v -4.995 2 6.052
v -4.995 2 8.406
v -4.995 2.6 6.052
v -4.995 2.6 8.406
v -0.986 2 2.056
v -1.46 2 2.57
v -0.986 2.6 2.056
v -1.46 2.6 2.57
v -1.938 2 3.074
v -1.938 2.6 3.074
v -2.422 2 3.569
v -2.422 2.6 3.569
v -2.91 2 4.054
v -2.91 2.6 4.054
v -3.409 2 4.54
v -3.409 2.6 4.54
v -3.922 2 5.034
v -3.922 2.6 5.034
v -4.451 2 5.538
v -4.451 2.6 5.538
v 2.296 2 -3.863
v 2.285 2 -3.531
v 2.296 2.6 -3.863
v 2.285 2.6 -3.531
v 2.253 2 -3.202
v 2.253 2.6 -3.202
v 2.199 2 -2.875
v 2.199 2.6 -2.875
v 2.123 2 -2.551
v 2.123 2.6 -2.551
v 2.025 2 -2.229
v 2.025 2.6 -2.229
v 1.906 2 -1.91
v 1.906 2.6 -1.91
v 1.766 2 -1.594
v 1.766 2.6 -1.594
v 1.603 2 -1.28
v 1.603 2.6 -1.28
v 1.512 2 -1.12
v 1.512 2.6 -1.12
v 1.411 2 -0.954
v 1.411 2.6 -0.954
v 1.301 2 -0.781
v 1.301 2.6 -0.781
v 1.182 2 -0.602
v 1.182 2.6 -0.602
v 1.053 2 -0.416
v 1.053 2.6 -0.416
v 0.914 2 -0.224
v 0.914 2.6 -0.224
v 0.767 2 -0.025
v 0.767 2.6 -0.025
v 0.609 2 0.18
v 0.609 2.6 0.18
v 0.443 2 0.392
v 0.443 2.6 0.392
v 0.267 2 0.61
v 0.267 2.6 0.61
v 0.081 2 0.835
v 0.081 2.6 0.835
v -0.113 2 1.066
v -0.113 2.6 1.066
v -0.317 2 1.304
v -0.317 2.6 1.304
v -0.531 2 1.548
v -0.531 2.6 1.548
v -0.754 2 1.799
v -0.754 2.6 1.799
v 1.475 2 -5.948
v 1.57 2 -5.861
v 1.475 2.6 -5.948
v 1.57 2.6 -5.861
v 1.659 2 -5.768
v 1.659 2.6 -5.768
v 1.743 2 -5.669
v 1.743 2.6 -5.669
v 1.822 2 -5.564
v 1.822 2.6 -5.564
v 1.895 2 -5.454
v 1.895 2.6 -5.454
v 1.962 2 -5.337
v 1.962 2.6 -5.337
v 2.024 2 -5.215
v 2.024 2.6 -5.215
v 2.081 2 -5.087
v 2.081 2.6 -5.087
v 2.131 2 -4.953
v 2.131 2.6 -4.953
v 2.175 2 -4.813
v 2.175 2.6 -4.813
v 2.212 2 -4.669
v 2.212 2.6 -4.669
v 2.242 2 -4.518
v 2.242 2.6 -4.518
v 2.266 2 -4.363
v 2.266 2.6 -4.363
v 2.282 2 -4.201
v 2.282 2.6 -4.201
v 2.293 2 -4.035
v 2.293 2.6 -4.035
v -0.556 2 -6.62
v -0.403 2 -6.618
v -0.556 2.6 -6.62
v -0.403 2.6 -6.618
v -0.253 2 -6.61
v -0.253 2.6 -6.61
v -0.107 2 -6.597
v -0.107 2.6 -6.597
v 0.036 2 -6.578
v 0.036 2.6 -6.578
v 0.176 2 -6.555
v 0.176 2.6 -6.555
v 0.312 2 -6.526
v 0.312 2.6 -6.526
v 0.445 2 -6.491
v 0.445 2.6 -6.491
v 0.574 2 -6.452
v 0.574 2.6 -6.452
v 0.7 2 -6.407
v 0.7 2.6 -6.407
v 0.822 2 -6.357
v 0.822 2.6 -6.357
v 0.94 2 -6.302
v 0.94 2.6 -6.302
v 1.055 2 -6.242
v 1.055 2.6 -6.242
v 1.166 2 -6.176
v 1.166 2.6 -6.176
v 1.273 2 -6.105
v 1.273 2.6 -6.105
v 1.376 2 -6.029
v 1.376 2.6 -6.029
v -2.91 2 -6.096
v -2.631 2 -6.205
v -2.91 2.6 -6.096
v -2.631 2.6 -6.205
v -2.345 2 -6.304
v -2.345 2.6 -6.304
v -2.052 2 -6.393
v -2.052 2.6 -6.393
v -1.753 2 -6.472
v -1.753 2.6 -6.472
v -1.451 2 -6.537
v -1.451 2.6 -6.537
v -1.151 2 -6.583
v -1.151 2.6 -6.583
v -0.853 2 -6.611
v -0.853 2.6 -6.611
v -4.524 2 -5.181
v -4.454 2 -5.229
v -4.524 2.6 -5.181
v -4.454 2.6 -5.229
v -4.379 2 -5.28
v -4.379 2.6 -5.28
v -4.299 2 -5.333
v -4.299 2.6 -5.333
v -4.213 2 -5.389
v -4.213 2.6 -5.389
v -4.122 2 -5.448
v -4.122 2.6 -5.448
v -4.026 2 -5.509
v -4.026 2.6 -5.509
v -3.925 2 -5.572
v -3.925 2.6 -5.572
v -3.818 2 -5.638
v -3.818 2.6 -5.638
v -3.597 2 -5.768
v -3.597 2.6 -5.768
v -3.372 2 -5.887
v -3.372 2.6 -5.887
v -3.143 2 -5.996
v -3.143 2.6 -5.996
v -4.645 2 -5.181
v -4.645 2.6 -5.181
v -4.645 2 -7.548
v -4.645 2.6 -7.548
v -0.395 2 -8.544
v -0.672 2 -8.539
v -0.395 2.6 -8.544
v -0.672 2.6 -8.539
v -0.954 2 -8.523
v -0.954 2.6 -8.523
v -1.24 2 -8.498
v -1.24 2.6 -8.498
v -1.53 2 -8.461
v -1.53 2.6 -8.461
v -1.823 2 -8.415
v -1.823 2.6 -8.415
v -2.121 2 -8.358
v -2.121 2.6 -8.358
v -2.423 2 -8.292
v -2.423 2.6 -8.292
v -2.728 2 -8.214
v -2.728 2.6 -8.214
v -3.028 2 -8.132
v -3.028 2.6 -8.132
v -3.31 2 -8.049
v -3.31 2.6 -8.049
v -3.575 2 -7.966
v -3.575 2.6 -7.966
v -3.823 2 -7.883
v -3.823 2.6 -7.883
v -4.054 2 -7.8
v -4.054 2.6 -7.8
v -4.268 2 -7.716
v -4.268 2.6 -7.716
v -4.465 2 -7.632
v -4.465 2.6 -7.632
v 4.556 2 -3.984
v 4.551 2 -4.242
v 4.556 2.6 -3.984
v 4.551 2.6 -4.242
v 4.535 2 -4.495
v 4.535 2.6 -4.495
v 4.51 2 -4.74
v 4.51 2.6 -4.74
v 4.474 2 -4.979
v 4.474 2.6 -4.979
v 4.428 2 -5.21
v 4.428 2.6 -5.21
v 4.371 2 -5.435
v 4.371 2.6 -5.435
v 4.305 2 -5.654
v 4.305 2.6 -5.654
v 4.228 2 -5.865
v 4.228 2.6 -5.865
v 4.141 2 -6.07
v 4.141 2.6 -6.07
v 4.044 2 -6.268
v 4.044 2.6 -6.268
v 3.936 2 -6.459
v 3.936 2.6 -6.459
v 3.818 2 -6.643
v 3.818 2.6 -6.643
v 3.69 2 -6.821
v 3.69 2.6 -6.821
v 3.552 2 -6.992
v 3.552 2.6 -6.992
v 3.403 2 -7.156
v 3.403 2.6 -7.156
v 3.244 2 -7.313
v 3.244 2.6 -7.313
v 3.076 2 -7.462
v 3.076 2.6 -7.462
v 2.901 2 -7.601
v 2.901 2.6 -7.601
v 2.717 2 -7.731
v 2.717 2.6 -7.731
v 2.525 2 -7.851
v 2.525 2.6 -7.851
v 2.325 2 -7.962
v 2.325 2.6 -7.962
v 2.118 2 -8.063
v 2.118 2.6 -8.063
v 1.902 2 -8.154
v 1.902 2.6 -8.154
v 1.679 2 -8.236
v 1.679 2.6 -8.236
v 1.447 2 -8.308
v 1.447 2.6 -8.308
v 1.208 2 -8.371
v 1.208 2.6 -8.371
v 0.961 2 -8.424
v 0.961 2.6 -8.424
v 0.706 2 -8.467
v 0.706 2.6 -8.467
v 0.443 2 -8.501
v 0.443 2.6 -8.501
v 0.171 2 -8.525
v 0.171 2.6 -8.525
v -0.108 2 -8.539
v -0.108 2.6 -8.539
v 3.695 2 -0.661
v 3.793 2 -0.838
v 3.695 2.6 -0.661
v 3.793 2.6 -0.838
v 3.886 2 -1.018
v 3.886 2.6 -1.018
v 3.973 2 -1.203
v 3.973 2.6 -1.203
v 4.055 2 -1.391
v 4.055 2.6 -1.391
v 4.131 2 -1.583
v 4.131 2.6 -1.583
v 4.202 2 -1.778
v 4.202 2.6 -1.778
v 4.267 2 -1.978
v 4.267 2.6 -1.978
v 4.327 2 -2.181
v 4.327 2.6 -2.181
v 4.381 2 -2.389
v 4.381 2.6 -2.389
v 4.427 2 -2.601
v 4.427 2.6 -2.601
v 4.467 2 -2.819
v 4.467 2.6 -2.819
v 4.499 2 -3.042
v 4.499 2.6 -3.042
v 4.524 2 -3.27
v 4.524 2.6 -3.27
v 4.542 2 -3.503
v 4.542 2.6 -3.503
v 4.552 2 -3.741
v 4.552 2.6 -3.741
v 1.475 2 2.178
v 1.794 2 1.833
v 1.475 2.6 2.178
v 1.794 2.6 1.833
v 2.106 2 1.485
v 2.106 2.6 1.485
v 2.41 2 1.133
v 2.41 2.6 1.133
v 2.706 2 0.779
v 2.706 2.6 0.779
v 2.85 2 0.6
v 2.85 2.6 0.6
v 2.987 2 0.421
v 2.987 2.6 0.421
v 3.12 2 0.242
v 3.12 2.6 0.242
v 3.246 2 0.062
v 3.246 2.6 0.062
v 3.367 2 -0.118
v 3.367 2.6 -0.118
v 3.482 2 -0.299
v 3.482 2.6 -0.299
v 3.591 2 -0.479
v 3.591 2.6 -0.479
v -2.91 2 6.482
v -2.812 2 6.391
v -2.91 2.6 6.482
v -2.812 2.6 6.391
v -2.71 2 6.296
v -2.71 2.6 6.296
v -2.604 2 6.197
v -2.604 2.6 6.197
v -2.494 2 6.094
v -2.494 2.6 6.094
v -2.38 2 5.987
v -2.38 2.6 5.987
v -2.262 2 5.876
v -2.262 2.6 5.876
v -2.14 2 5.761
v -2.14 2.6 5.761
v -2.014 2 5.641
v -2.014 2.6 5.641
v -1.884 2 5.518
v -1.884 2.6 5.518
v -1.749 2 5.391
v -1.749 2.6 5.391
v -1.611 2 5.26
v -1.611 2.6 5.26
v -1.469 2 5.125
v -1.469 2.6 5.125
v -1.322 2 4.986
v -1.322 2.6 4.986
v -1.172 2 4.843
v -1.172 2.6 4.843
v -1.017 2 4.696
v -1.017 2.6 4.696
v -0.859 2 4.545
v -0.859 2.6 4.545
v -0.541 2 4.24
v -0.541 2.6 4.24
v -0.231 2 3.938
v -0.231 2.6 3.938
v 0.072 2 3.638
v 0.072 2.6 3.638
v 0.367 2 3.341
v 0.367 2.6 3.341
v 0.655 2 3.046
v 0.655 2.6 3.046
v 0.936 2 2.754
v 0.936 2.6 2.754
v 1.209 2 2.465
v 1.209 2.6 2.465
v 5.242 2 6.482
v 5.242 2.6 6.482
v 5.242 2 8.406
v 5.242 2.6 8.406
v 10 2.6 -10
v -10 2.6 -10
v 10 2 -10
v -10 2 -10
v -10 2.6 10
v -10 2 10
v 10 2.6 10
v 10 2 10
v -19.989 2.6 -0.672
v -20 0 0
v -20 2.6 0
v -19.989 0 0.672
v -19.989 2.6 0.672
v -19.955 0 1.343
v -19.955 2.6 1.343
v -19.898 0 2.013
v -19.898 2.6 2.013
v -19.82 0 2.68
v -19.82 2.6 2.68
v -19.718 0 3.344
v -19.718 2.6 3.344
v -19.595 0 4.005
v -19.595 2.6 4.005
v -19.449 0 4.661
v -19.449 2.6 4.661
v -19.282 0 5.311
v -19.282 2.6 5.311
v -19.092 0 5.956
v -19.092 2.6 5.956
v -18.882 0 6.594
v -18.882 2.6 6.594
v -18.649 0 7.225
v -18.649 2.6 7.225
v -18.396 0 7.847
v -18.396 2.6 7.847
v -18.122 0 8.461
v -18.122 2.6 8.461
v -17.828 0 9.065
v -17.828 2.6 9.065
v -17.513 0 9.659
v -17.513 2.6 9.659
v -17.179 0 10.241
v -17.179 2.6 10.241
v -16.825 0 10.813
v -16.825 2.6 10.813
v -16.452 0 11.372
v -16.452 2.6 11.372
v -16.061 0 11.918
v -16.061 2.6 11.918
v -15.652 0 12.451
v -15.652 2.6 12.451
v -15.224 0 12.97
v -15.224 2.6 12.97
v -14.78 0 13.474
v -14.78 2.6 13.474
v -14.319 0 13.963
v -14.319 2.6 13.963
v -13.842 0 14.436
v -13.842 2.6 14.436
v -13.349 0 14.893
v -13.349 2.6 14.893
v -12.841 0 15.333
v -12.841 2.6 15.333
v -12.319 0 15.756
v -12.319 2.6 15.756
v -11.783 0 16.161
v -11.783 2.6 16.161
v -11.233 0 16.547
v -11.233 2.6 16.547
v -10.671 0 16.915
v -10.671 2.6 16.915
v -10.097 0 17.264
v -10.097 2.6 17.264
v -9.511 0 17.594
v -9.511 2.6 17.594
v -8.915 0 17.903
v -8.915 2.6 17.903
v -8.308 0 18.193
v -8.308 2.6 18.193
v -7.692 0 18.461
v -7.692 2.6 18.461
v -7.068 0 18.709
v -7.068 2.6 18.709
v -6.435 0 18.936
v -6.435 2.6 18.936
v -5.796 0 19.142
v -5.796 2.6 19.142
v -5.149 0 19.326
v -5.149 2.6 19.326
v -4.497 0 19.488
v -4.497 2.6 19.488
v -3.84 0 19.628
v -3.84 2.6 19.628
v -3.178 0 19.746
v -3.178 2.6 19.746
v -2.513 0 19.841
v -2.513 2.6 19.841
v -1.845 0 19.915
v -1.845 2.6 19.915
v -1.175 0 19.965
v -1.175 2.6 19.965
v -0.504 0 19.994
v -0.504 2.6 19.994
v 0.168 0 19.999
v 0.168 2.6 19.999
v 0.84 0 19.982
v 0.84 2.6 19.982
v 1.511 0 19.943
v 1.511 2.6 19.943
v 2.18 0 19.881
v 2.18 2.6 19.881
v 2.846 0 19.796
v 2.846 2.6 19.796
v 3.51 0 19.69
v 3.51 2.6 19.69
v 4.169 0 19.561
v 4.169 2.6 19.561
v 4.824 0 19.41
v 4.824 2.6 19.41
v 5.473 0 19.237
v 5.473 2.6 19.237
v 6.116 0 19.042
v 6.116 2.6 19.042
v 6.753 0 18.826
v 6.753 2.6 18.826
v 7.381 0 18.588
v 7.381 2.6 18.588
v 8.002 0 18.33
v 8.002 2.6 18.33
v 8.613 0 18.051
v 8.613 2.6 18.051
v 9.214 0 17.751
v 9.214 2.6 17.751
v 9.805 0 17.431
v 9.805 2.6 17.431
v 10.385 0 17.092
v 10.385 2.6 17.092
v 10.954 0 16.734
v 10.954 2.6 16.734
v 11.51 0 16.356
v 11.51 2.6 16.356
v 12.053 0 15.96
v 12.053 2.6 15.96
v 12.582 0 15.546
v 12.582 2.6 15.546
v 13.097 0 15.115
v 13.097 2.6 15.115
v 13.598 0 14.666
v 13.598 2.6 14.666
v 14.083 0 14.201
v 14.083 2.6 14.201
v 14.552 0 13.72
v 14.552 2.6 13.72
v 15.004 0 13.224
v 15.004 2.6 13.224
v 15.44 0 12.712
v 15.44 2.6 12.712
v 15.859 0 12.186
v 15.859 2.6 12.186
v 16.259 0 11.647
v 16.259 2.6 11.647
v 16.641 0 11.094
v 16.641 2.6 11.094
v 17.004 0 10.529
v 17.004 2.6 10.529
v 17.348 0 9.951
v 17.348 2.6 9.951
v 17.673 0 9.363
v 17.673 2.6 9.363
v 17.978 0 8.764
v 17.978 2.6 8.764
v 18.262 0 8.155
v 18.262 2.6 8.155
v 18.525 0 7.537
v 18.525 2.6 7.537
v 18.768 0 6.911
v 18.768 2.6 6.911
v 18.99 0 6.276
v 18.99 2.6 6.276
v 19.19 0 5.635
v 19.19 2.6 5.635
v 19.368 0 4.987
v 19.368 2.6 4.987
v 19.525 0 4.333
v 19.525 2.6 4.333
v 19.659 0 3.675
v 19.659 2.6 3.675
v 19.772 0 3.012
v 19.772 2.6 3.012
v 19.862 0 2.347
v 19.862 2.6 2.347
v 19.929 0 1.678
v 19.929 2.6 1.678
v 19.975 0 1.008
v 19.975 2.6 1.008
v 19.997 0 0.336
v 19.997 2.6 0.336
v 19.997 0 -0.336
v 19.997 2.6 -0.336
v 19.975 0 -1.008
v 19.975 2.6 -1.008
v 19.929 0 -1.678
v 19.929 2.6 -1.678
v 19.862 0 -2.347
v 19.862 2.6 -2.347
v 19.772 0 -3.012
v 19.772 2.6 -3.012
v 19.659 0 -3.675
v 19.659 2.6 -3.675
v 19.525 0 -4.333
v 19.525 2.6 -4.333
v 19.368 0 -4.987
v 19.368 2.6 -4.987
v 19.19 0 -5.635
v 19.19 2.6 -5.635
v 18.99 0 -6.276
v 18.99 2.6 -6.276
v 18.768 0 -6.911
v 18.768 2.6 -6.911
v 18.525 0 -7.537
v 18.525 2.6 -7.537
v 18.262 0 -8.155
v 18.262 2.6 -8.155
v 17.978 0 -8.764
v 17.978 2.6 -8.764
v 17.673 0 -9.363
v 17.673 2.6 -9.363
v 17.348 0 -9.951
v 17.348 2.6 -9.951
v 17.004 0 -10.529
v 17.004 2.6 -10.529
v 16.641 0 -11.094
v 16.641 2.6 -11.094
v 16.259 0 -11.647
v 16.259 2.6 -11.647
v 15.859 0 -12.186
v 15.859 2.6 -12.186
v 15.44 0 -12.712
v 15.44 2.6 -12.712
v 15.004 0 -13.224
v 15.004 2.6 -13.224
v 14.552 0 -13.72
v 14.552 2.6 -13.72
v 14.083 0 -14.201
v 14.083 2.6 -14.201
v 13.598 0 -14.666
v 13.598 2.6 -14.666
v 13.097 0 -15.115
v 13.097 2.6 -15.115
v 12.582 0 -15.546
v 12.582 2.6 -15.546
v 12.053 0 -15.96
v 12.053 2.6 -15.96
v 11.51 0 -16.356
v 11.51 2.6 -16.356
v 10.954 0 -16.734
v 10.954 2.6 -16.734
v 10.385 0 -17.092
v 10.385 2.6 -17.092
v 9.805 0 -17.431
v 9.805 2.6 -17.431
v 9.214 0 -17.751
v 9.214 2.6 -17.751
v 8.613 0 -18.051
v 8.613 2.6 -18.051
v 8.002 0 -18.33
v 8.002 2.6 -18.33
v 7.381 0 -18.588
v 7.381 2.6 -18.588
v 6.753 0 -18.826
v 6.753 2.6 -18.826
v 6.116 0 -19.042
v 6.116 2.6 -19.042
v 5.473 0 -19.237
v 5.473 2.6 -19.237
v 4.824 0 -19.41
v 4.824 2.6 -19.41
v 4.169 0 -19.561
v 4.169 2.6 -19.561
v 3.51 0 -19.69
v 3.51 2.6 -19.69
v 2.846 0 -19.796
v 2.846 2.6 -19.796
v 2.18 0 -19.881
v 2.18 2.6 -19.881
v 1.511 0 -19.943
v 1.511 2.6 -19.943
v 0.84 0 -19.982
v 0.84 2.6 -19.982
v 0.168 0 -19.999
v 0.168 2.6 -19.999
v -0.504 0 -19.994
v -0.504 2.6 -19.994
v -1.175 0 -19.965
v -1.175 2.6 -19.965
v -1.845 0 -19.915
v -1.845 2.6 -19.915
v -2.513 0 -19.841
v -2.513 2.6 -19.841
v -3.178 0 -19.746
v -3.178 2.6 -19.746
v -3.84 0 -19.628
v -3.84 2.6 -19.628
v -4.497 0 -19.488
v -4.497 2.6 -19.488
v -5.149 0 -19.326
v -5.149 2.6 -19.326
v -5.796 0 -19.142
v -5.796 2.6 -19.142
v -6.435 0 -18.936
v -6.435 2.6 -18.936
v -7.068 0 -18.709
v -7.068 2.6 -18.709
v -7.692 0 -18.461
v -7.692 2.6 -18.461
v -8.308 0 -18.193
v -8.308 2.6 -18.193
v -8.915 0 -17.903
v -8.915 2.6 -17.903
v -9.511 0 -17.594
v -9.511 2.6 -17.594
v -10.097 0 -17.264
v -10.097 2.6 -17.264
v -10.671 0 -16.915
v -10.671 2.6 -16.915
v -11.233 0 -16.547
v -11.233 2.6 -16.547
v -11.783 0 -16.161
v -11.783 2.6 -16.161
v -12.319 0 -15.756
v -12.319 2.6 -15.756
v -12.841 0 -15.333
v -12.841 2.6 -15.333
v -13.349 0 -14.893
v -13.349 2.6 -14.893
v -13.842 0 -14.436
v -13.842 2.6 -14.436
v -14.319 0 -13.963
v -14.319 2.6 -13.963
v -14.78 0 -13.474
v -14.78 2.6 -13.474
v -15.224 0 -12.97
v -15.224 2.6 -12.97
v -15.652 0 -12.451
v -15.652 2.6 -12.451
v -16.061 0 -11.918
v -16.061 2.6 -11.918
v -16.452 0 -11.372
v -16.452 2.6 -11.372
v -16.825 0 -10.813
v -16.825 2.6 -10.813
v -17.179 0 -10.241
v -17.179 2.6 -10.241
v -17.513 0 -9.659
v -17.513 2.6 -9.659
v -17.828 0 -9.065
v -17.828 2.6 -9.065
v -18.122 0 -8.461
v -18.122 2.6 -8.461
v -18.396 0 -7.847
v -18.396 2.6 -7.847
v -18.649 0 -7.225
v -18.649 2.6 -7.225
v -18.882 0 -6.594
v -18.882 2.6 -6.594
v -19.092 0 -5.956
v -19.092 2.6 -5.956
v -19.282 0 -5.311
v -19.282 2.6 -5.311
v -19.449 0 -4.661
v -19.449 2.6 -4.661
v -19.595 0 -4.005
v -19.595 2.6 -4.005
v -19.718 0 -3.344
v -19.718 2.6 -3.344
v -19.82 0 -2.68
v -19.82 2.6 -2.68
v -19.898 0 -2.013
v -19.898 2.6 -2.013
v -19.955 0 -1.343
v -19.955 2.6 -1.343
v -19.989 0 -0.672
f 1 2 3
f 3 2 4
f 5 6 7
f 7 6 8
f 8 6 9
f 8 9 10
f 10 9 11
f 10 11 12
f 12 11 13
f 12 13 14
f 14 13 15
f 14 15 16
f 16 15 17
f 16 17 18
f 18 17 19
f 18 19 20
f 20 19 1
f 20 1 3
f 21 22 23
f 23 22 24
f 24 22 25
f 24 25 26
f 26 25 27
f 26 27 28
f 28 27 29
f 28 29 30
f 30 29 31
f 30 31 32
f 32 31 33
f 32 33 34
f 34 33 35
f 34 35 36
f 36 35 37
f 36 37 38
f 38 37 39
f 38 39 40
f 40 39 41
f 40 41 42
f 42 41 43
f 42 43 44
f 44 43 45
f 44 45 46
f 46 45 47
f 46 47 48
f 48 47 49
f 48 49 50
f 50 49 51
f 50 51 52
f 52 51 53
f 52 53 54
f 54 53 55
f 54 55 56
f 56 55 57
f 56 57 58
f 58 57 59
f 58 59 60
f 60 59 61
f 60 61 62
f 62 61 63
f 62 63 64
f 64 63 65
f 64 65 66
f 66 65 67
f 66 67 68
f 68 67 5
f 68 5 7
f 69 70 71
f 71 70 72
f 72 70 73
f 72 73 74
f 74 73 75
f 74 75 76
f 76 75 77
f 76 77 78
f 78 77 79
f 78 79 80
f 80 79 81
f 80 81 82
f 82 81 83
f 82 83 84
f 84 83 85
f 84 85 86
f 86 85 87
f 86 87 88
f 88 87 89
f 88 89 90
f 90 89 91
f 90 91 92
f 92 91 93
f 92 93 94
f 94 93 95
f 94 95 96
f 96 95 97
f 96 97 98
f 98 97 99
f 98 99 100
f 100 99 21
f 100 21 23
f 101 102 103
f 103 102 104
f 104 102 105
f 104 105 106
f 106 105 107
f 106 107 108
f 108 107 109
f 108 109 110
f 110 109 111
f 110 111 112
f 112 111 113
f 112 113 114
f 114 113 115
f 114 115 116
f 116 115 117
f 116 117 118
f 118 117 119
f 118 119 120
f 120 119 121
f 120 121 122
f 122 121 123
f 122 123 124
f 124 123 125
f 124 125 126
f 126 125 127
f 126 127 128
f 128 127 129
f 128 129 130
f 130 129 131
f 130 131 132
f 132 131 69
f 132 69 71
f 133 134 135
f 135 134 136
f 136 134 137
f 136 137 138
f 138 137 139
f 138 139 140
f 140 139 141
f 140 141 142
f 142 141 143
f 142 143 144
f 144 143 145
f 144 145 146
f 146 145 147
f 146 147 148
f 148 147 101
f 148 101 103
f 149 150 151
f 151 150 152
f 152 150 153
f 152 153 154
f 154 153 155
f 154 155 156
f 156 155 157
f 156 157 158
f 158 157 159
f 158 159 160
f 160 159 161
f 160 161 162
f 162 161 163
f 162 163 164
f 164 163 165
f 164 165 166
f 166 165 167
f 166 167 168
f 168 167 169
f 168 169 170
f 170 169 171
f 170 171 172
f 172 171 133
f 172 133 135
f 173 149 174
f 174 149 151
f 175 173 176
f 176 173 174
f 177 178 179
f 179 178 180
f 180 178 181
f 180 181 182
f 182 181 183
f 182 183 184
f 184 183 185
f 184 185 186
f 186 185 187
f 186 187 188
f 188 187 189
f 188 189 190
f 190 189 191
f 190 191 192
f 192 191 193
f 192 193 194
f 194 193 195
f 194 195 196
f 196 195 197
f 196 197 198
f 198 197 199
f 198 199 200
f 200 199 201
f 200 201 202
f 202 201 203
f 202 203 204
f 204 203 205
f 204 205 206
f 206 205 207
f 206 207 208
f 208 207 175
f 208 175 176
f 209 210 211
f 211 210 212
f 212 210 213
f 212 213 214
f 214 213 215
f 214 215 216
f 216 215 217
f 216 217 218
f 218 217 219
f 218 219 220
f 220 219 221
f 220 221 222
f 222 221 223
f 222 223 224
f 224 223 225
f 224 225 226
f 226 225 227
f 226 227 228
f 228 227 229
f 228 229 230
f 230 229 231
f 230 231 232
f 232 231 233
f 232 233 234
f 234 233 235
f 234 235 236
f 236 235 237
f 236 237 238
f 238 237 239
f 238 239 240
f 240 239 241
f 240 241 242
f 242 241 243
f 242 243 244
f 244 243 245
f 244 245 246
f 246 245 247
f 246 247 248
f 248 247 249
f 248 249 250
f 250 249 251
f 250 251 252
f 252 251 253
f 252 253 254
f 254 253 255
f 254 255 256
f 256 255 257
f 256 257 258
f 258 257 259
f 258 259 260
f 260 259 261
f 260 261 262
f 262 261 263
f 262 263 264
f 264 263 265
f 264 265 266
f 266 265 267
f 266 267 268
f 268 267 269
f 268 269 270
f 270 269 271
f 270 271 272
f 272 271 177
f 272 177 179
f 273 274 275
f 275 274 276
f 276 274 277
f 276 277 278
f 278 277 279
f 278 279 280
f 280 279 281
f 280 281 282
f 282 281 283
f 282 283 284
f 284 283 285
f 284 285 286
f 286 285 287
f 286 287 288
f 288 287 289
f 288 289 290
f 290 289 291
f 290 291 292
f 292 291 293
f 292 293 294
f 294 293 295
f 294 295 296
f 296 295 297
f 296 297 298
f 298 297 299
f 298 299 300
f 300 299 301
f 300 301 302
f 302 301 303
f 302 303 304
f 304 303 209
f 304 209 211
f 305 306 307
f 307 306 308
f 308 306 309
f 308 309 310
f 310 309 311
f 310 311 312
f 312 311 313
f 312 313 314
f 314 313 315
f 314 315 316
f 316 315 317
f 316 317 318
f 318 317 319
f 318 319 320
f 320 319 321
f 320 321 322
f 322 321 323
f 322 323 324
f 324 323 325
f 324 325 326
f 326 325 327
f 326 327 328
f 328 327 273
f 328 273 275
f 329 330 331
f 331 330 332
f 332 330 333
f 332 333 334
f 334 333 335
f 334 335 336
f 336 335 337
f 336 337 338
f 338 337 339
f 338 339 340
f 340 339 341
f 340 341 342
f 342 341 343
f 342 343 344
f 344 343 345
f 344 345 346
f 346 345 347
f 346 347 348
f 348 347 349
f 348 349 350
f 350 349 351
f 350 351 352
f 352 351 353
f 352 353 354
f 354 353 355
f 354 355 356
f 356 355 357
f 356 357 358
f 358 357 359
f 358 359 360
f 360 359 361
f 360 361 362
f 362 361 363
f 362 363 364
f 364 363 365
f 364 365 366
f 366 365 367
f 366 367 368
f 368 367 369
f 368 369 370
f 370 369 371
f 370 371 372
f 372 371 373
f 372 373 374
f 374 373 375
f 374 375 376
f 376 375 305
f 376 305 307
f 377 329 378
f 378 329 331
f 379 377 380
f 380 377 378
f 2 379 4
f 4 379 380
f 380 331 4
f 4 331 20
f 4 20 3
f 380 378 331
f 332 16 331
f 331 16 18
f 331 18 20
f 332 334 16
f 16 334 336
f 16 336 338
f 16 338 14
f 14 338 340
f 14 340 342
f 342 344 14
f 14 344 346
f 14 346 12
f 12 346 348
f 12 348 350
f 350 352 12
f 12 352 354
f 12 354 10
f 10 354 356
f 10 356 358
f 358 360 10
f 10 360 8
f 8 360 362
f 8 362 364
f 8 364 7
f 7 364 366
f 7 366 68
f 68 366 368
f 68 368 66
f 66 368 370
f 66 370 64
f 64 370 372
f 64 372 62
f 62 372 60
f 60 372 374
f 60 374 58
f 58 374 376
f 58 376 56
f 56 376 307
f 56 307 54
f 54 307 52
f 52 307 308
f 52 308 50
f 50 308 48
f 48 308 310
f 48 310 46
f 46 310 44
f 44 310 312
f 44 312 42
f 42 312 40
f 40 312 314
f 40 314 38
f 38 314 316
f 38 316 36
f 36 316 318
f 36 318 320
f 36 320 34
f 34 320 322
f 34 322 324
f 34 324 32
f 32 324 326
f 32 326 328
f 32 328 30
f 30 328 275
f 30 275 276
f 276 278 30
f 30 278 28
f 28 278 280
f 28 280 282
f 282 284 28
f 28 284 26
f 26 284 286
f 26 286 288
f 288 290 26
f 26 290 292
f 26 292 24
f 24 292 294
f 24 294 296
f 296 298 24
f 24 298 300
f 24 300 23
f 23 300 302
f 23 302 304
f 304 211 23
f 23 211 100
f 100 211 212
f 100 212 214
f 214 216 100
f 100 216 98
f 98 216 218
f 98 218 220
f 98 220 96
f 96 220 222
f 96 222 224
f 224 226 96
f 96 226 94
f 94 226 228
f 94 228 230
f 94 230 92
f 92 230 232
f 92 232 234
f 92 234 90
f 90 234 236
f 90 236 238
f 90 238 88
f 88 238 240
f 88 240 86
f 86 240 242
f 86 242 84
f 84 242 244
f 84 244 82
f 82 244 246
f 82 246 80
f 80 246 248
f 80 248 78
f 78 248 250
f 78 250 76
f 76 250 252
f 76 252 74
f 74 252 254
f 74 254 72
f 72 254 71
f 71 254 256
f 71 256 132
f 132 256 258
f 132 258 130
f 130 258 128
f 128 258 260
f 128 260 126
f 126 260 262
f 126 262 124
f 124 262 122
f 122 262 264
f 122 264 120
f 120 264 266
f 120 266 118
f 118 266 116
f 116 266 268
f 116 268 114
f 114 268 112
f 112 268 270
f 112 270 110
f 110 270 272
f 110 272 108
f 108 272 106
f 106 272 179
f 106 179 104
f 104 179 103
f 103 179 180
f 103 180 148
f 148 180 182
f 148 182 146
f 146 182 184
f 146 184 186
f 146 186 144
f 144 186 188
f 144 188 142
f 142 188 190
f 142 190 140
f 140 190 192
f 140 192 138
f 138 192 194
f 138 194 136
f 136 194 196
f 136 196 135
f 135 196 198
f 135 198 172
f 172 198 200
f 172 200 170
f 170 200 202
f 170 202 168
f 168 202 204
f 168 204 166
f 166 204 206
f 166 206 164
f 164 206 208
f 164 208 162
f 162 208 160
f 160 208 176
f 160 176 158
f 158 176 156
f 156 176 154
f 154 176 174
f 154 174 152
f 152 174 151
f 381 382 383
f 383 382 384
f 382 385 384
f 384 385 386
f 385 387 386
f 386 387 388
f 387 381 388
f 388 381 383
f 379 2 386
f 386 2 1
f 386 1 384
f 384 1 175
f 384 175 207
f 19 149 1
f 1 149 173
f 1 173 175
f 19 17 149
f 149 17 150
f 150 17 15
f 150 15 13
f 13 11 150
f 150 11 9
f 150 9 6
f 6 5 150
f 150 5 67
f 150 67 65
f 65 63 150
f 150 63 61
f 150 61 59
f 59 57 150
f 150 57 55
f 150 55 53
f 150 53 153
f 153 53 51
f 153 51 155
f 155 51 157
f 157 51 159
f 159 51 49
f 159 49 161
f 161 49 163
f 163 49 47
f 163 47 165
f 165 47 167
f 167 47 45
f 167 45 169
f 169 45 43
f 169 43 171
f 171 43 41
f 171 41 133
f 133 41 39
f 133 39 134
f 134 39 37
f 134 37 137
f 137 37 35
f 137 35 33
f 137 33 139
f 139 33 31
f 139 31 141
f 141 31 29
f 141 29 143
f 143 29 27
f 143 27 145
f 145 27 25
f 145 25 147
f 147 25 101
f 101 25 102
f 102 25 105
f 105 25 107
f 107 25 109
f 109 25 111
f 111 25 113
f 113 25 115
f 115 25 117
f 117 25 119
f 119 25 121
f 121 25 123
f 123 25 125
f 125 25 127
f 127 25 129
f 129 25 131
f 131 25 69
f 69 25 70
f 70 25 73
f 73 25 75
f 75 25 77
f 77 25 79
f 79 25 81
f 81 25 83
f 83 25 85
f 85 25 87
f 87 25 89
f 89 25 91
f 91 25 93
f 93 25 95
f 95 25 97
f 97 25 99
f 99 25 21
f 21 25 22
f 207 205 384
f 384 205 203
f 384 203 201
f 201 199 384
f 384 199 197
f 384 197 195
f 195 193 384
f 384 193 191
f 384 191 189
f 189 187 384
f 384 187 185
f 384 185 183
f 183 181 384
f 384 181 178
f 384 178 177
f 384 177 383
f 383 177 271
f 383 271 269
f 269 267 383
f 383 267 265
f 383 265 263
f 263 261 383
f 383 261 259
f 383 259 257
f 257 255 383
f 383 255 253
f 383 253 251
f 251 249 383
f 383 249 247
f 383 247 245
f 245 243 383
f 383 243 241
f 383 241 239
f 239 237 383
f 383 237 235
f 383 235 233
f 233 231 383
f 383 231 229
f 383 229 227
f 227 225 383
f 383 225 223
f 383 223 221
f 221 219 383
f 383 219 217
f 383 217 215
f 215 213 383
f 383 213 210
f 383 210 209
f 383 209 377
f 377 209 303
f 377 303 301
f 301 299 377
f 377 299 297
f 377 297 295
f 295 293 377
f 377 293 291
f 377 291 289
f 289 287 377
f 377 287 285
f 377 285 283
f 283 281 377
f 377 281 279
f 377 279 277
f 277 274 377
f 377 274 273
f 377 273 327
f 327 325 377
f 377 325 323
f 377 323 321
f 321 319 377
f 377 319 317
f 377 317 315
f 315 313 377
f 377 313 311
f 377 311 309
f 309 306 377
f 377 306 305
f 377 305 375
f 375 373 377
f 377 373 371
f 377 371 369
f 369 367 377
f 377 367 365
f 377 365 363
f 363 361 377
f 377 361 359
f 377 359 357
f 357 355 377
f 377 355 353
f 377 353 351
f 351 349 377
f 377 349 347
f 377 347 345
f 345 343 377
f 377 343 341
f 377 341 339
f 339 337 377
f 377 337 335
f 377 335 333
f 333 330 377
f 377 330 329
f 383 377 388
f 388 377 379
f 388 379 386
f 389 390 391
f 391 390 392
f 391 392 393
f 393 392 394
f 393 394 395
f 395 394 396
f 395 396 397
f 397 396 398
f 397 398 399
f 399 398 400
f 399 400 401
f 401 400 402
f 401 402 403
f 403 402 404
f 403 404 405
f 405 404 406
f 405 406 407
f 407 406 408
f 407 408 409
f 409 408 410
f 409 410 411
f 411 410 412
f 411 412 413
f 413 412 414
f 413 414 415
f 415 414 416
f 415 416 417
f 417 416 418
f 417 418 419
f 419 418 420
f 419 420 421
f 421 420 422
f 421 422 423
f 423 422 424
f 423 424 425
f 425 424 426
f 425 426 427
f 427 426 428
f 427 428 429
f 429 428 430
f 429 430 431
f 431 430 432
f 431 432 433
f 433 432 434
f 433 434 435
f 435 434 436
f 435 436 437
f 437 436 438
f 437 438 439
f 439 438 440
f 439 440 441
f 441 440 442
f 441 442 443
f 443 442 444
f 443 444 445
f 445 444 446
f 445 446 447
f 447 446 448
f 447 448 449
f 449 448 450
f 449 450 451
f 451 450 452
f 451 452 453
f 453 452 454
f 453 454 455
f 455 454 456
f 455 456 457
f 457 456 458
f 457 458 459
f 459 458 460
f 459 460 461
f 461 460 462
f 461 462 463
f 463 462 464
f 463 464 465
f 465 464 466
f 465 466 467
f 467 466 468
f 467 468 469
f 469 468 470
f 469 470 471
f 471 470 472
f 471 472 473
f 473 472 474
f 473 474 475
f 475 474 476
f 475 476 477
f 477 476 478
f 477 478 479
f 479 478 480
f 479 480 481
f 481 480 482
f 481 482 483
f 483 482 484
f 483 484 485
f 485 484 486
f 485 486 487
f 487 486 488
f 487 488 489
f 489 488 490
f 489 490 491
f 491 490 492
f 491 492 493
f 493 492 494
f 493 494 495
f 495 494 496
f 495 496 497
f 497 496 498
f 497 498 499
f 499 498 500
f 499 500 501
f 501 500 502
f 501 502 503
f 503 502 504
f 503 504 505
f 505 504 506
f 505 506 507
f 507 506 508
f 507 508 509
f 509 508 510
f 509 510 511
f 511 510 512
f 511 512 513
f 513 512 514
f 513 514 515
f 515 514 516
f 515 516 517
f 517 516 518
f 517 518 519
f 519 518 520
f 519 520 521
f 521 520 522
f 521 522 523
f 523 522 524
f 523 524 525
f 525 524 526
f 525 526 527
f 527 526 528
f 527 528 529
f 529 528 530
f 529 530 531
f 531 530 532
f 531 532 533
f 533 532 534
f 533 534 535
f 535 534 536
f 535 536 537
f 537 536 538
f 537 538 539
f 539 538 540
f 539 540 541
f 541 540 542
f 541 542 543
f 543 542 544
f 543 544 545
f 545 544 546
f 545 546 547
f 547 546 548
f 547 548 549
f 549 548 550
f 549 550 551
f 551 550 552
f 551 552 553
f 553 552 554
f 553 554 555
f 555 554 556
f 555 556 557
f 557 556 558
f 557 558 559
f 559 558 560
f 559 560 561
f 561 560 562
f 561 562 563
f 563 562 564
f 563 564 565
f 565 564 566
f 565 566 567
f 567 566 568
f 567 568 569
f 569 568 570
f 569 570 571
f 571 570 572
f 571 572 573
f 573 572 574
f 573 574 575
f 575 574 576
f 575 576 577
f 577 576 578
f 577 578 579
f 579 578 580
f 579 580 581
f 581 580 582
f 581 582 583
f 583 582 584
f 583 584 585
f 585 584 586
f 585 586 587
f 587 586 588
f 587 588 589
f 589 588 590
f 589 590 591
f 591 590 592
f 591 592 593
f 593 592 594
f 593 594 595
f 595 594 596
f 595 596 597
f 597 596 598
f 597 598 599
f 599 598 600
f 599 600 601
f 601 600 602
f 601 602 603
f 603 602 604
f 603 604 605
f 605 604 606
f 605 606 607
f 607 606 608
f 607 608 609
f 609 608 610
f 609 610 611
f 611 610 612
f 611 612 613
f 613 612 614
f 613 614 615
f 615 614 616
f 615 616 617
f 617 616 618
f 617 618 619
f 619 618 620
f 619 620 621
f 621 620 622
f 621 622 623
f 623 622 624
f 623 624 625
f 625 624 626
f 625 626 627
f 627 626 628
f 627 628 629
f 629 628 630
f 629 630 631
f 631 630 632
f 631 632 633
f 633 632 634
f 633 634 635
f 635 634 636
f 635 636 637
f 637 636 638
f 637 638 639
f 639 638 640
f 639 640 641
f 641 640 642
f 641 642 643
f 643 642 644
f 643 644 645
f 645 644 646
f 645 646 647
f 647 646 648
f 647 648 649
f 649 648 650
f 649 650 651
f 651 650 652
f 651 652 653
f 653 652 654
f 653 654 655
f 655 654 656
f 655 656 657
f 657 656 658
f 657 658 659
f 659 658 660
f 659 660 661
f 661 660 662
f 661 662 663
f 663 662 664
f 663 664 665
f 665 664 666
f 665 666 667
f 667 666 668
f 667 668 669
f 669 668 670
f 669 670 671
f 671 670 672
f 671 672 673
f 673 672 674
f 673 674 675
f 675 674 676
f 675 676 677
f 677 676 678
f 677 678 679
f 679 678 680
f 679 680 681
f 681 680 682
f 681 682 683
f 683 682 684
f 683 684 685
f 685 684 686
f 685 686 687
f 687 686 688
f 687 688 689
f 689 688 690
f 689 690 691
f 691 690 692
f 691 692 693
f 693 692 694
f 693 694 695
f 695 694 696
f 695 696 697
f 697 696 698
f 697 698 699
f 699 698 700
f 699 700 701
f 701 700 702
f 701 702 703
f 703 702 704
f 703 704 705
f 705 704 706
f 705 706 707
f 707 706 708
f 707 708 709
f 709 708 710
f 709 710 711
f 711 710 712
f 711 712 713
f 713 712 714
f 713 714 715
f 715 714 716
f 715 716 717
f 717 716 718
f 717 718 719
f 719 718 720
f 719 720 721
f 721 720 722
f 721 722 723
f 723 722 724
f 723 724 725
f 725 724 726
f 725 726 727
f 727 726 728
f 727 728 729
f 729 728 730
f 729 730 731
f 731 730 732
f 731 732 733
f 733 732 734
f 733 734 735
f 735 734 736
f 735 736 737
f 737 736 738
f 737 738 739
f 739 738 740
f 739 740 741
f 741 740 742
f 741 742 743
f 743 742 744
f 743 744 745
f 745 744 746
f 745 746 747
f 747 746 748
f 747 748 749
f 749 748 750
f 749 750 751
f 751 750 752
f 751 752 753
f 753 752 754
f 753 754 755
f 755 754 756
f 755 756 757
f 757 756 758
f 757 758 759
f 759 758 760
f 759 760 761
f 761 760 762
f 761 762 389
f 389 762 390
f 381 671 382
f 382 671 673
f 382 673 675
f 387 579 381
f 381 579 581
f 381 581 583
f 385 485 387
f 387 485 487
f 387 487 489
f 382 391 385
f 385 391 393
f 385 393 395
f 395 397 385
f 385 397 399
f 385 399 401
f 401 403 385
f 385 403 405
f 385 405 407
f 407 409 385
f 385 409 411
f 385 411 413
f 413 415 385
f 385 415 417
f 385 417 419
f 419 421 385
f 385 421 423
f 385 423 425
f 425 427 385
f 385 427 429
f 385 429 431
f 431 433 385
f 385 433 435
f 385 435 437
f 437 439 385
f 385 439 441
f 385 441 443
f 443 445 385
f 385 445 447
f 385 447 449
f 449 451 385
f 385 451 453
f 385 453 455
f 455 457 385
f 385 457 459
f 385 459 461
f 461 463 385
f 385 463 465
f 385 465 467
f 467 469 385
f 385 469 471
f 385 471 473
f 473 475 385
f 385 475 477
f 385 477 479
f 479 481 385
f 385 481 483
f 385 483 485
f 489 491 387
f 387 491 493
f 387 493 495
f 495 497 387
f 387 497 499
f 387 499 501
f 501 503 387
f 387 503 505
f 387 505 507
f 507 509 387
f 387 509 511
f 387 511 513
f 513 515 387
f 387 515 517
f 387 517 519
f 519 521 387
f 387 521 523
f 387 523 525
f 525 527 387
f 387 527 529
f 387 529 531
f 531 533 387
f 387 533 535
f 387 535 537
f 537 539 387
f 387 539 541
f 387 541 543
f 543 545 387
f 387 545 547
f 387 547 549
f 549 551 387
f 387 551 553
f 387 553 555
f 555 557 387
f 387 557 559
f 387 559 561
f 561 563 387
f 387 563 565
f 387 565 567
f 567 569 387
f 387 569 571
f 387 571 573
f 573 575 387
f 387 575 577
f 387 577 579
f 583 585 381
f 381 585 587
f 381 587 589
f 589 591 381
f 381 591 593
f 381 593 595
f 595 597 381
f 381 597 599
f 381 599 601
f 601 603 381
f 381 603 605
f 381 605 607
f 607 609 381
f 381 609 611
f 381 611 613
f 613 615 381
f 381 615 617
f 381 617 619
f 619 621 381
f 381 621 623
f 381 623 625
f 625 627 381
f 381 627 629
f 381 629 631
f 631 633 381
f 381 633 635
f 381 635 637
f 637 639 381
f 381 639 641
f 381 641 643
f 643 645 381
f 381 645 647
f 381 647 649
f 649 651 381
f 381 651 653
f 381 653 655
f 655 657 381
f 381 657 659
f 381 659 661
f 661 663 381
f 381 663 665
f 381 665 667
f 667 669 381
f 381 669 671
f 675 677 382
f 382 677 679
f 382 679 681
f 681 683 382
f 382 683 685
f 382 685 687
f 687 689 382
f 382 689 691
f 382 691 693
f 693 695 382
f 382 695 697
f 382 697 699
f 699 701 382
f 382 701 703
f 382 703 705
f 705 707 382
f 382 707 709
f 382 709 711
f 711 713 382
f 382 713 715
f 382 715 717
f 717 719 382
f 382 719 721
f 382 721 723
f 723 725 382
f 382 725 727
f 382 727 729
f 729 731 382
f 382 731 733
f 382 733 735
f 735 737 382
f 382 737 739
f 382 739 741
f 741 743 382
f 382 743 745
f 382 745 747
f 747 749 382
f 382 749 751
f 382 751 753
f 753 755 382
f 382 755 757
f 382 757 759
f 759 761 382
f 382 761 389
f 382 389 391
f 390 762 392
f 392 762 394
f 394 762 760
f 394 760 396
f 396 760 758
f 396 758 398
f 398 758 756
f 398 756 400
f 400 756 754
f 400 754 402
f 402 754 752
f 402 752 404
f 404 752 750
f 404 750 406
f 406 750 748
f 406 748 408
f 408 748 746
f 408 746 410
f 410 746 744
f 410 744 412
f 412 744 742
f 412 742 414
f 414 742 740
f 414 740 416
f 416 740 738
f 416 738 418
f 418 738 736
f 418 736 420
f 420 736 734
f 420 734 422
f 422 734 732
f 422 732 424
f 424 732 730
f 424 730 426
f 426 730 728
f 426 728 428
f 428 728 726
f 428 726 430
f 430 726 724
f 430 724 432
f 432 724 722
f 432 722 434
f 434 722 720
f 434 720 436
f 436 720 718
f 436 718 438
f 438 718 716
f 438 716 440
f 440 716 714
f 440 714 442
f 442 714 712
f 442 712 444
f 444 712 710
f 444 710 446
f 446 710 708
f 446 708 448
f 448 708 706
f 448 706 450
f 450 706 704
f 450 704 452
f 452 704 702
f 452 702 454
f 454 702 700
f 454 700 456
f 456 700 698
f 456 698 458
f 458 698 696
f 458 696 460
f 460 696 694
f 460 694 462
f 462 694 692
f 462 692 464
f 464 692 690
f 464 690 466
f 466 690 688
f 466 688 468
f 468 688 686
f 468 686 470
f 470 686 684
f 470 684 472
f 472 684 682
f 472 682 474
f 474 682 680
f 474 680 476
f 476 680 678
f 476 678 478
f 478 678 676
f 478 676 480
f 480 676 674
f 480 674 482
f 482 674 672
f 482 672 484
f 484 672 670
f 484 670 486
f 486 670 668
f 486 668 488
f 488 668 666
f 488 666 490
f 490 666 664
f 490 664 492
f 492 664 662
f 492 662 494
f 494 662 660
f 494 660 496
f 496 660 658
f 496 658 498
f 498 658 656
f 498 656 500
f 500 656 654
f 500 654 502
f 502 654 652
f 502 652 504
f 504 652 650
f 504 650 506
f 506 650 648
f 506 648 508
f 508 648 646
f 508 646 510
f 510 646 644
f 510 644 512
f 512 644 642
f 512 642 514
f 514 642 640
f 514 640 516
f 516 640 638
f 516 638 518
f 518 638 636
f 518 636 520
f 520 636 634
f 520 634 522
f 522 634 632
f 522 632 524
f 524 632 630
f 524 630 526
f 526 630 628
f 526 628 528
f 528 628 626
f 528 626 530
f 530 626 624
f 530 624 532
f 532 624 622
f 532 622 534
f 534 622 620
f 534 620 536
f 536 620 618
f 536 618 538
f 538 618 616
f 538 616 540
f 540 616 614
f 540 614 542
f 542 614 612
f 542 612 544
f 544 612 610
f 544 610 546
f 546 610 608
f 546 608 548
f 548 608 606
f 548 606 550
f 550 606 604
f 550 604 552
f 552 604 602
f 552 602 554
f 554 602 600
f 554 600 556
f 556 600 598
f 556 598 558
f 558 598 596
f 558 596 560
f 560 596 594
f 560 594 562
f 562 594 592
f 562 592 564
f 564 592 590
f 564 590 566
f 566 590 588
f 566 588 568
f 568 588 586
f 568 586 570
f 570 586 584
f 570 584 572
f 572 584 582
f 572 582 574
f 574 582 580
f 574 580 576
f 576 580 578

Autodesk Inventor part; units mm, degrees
ref_plane "YZ Plane" through (0, 0, 0) normal (1, 0, 0) x (0, 1, 0)
ref_plane "XZ Plane" through (0, 0, 0) normal (0, 1, 0) x (-1, 0, 0)
ref_plane "XY Plane" through (0, 0, 0) normal (0, 0, 1) x (1, 0, 0)
sketch "Sketch1" plane through (0, 0, 0) normal (0, 1, 0) x (-1, 0, 0)
  circle A0 centre (0, 0) radius 20
  dimension "d0" = 40
extrude "Extrusion1" add sketch "Sketch1" along normal blind 2.6
sketch "Sketch2" plane through (0, 2.6, 0) normal (0, 1, 0) x (1, 0, 0)
  line L0 (-10, -10) -> (10, -10)
  line L1 (10, -10) -> (10, 10)
  line L2 (10, 10) -> (-10, 10)
  line L3 (-10, 10) -> (-10, -10)
  line L4 (-10, -10) -> (10, 10) construction
  line L5 (10, -10) -> (-10, 10) construction
  point P0 (0, 0)
  dimension "d3" = 20
  dimension "d4" = 20
extrude "Extrusion2" cut sketch "Sketch2" against normal blind 0.6
sketch "Sketch3" plane through (0, 2, 0) normal (0, 1, 0) x (1, 0, 0)
  line L0 (-6.2058, 8.5439) -> (6.2509, 8.5439) construction
  line L1 (6.2509, 8.5439) -> (6.2509, -8.4059) construction
  line L2 (6.2509, -8.4059) -> (-6.2058, -8.4059) construction
  line L3 (-6.2058, -8.4059) -> (-6.2058, 8.5439) construction
  line L4 (5.242, -8.4059) -> (-4.9952, -8.4059)
  line L5 (-4.9952, -8.4059) -> (-4.9952, -6.0518)
  spline S0 degree 2 poles (-4.9952, -6.0518) (-3.8921, -5.0159) (-1.9281, -3.0923) (-0.9864, -2.0565) knots 0 0 0 1 2 2 2
  spline S1 degree 2 poles (-0.9864, -2.0565) (0.9104, 0.0286) (2.2959, 2.5307) (2.2959, 3.8625) knots 0 0 0 1 2 2 2
  spline S2 degree 2 poles (2.2959, 3.8625) (2.2959, 4.562) (1.8655, 5.6113) (1.4754, 5.9476) knots 0 0 0 1 2 2 2
  spline S3 degree 2 poles (1.4754, 5.9476) (1.0852, 6.2839) (0.0629, 6.6202) (-0.5559, 6.6202) knots 0 0 0 1 2 2 2
  spline S4 degree 2 poles (-0.5559, 6.6202) (-1.1478, 6.6202) (-2.3585, 6.3243) (-2.9101, 6.0956) knots 0 0 0 1 2 2 2
  spline S5 degree 2 poles (-2.9101, 6.0956) (-3.3809, 5.9072) (-4.2553, 5.3691) (-4.5243, 5.1808) knots 0 0 0 1 2 2 2
  line L6 (-4.5243, 5.1808) -> (-4.6454, 5.1808)
  line L7 (-4.6454, 5.1808) -> (-4.6454, 7.5484)
  spline S6 degree 2 poles (-4.6454, 7.5484) (-3.9593, 7.8847) (-1.4976, 8.5439) (-0.3945, 8.5439) knots 0 0 0 1 2 2 2
  spline S7 degree 2 poles (-0.3945, 8.5439) (1.9327, 8.5439) (4.5559, 6.0821) (4.5559, 3.9836) knots 0 0 0 1 2 2 2
  spline S8 degree 2 poles (4.5559, 3.9836) (4.5559, 3.0016) (4.0985, 1.3604) (3.695, 0.6609) knots 0 0 0 1 2 2 2
  spline S9 degree 2 poles (3.695, 0.6609) (3.2914, -0.0655) (2.1211, -1.4915) (1.4754, -2.1775) knots 0 0 0 1 2 2 2
  spline S10 degree 2 poles (1.4754, -2.1775) (0.4261, -3.321) (-2.1433, -5.7693) (-2.9101, -6.4822) knots 0 0 0 1 2 2 2
  line L8 (-2.9101, -6.4822) -> (5.242, -6.4822)
  line L9 (5.242, -6.4822) -> (5.242, -8.4059)
  point P0 (0, 0)
extrude "Extrusion3" add sketch "Sketch3" along normal blind 0.6
properties part number "TopMarker2"
